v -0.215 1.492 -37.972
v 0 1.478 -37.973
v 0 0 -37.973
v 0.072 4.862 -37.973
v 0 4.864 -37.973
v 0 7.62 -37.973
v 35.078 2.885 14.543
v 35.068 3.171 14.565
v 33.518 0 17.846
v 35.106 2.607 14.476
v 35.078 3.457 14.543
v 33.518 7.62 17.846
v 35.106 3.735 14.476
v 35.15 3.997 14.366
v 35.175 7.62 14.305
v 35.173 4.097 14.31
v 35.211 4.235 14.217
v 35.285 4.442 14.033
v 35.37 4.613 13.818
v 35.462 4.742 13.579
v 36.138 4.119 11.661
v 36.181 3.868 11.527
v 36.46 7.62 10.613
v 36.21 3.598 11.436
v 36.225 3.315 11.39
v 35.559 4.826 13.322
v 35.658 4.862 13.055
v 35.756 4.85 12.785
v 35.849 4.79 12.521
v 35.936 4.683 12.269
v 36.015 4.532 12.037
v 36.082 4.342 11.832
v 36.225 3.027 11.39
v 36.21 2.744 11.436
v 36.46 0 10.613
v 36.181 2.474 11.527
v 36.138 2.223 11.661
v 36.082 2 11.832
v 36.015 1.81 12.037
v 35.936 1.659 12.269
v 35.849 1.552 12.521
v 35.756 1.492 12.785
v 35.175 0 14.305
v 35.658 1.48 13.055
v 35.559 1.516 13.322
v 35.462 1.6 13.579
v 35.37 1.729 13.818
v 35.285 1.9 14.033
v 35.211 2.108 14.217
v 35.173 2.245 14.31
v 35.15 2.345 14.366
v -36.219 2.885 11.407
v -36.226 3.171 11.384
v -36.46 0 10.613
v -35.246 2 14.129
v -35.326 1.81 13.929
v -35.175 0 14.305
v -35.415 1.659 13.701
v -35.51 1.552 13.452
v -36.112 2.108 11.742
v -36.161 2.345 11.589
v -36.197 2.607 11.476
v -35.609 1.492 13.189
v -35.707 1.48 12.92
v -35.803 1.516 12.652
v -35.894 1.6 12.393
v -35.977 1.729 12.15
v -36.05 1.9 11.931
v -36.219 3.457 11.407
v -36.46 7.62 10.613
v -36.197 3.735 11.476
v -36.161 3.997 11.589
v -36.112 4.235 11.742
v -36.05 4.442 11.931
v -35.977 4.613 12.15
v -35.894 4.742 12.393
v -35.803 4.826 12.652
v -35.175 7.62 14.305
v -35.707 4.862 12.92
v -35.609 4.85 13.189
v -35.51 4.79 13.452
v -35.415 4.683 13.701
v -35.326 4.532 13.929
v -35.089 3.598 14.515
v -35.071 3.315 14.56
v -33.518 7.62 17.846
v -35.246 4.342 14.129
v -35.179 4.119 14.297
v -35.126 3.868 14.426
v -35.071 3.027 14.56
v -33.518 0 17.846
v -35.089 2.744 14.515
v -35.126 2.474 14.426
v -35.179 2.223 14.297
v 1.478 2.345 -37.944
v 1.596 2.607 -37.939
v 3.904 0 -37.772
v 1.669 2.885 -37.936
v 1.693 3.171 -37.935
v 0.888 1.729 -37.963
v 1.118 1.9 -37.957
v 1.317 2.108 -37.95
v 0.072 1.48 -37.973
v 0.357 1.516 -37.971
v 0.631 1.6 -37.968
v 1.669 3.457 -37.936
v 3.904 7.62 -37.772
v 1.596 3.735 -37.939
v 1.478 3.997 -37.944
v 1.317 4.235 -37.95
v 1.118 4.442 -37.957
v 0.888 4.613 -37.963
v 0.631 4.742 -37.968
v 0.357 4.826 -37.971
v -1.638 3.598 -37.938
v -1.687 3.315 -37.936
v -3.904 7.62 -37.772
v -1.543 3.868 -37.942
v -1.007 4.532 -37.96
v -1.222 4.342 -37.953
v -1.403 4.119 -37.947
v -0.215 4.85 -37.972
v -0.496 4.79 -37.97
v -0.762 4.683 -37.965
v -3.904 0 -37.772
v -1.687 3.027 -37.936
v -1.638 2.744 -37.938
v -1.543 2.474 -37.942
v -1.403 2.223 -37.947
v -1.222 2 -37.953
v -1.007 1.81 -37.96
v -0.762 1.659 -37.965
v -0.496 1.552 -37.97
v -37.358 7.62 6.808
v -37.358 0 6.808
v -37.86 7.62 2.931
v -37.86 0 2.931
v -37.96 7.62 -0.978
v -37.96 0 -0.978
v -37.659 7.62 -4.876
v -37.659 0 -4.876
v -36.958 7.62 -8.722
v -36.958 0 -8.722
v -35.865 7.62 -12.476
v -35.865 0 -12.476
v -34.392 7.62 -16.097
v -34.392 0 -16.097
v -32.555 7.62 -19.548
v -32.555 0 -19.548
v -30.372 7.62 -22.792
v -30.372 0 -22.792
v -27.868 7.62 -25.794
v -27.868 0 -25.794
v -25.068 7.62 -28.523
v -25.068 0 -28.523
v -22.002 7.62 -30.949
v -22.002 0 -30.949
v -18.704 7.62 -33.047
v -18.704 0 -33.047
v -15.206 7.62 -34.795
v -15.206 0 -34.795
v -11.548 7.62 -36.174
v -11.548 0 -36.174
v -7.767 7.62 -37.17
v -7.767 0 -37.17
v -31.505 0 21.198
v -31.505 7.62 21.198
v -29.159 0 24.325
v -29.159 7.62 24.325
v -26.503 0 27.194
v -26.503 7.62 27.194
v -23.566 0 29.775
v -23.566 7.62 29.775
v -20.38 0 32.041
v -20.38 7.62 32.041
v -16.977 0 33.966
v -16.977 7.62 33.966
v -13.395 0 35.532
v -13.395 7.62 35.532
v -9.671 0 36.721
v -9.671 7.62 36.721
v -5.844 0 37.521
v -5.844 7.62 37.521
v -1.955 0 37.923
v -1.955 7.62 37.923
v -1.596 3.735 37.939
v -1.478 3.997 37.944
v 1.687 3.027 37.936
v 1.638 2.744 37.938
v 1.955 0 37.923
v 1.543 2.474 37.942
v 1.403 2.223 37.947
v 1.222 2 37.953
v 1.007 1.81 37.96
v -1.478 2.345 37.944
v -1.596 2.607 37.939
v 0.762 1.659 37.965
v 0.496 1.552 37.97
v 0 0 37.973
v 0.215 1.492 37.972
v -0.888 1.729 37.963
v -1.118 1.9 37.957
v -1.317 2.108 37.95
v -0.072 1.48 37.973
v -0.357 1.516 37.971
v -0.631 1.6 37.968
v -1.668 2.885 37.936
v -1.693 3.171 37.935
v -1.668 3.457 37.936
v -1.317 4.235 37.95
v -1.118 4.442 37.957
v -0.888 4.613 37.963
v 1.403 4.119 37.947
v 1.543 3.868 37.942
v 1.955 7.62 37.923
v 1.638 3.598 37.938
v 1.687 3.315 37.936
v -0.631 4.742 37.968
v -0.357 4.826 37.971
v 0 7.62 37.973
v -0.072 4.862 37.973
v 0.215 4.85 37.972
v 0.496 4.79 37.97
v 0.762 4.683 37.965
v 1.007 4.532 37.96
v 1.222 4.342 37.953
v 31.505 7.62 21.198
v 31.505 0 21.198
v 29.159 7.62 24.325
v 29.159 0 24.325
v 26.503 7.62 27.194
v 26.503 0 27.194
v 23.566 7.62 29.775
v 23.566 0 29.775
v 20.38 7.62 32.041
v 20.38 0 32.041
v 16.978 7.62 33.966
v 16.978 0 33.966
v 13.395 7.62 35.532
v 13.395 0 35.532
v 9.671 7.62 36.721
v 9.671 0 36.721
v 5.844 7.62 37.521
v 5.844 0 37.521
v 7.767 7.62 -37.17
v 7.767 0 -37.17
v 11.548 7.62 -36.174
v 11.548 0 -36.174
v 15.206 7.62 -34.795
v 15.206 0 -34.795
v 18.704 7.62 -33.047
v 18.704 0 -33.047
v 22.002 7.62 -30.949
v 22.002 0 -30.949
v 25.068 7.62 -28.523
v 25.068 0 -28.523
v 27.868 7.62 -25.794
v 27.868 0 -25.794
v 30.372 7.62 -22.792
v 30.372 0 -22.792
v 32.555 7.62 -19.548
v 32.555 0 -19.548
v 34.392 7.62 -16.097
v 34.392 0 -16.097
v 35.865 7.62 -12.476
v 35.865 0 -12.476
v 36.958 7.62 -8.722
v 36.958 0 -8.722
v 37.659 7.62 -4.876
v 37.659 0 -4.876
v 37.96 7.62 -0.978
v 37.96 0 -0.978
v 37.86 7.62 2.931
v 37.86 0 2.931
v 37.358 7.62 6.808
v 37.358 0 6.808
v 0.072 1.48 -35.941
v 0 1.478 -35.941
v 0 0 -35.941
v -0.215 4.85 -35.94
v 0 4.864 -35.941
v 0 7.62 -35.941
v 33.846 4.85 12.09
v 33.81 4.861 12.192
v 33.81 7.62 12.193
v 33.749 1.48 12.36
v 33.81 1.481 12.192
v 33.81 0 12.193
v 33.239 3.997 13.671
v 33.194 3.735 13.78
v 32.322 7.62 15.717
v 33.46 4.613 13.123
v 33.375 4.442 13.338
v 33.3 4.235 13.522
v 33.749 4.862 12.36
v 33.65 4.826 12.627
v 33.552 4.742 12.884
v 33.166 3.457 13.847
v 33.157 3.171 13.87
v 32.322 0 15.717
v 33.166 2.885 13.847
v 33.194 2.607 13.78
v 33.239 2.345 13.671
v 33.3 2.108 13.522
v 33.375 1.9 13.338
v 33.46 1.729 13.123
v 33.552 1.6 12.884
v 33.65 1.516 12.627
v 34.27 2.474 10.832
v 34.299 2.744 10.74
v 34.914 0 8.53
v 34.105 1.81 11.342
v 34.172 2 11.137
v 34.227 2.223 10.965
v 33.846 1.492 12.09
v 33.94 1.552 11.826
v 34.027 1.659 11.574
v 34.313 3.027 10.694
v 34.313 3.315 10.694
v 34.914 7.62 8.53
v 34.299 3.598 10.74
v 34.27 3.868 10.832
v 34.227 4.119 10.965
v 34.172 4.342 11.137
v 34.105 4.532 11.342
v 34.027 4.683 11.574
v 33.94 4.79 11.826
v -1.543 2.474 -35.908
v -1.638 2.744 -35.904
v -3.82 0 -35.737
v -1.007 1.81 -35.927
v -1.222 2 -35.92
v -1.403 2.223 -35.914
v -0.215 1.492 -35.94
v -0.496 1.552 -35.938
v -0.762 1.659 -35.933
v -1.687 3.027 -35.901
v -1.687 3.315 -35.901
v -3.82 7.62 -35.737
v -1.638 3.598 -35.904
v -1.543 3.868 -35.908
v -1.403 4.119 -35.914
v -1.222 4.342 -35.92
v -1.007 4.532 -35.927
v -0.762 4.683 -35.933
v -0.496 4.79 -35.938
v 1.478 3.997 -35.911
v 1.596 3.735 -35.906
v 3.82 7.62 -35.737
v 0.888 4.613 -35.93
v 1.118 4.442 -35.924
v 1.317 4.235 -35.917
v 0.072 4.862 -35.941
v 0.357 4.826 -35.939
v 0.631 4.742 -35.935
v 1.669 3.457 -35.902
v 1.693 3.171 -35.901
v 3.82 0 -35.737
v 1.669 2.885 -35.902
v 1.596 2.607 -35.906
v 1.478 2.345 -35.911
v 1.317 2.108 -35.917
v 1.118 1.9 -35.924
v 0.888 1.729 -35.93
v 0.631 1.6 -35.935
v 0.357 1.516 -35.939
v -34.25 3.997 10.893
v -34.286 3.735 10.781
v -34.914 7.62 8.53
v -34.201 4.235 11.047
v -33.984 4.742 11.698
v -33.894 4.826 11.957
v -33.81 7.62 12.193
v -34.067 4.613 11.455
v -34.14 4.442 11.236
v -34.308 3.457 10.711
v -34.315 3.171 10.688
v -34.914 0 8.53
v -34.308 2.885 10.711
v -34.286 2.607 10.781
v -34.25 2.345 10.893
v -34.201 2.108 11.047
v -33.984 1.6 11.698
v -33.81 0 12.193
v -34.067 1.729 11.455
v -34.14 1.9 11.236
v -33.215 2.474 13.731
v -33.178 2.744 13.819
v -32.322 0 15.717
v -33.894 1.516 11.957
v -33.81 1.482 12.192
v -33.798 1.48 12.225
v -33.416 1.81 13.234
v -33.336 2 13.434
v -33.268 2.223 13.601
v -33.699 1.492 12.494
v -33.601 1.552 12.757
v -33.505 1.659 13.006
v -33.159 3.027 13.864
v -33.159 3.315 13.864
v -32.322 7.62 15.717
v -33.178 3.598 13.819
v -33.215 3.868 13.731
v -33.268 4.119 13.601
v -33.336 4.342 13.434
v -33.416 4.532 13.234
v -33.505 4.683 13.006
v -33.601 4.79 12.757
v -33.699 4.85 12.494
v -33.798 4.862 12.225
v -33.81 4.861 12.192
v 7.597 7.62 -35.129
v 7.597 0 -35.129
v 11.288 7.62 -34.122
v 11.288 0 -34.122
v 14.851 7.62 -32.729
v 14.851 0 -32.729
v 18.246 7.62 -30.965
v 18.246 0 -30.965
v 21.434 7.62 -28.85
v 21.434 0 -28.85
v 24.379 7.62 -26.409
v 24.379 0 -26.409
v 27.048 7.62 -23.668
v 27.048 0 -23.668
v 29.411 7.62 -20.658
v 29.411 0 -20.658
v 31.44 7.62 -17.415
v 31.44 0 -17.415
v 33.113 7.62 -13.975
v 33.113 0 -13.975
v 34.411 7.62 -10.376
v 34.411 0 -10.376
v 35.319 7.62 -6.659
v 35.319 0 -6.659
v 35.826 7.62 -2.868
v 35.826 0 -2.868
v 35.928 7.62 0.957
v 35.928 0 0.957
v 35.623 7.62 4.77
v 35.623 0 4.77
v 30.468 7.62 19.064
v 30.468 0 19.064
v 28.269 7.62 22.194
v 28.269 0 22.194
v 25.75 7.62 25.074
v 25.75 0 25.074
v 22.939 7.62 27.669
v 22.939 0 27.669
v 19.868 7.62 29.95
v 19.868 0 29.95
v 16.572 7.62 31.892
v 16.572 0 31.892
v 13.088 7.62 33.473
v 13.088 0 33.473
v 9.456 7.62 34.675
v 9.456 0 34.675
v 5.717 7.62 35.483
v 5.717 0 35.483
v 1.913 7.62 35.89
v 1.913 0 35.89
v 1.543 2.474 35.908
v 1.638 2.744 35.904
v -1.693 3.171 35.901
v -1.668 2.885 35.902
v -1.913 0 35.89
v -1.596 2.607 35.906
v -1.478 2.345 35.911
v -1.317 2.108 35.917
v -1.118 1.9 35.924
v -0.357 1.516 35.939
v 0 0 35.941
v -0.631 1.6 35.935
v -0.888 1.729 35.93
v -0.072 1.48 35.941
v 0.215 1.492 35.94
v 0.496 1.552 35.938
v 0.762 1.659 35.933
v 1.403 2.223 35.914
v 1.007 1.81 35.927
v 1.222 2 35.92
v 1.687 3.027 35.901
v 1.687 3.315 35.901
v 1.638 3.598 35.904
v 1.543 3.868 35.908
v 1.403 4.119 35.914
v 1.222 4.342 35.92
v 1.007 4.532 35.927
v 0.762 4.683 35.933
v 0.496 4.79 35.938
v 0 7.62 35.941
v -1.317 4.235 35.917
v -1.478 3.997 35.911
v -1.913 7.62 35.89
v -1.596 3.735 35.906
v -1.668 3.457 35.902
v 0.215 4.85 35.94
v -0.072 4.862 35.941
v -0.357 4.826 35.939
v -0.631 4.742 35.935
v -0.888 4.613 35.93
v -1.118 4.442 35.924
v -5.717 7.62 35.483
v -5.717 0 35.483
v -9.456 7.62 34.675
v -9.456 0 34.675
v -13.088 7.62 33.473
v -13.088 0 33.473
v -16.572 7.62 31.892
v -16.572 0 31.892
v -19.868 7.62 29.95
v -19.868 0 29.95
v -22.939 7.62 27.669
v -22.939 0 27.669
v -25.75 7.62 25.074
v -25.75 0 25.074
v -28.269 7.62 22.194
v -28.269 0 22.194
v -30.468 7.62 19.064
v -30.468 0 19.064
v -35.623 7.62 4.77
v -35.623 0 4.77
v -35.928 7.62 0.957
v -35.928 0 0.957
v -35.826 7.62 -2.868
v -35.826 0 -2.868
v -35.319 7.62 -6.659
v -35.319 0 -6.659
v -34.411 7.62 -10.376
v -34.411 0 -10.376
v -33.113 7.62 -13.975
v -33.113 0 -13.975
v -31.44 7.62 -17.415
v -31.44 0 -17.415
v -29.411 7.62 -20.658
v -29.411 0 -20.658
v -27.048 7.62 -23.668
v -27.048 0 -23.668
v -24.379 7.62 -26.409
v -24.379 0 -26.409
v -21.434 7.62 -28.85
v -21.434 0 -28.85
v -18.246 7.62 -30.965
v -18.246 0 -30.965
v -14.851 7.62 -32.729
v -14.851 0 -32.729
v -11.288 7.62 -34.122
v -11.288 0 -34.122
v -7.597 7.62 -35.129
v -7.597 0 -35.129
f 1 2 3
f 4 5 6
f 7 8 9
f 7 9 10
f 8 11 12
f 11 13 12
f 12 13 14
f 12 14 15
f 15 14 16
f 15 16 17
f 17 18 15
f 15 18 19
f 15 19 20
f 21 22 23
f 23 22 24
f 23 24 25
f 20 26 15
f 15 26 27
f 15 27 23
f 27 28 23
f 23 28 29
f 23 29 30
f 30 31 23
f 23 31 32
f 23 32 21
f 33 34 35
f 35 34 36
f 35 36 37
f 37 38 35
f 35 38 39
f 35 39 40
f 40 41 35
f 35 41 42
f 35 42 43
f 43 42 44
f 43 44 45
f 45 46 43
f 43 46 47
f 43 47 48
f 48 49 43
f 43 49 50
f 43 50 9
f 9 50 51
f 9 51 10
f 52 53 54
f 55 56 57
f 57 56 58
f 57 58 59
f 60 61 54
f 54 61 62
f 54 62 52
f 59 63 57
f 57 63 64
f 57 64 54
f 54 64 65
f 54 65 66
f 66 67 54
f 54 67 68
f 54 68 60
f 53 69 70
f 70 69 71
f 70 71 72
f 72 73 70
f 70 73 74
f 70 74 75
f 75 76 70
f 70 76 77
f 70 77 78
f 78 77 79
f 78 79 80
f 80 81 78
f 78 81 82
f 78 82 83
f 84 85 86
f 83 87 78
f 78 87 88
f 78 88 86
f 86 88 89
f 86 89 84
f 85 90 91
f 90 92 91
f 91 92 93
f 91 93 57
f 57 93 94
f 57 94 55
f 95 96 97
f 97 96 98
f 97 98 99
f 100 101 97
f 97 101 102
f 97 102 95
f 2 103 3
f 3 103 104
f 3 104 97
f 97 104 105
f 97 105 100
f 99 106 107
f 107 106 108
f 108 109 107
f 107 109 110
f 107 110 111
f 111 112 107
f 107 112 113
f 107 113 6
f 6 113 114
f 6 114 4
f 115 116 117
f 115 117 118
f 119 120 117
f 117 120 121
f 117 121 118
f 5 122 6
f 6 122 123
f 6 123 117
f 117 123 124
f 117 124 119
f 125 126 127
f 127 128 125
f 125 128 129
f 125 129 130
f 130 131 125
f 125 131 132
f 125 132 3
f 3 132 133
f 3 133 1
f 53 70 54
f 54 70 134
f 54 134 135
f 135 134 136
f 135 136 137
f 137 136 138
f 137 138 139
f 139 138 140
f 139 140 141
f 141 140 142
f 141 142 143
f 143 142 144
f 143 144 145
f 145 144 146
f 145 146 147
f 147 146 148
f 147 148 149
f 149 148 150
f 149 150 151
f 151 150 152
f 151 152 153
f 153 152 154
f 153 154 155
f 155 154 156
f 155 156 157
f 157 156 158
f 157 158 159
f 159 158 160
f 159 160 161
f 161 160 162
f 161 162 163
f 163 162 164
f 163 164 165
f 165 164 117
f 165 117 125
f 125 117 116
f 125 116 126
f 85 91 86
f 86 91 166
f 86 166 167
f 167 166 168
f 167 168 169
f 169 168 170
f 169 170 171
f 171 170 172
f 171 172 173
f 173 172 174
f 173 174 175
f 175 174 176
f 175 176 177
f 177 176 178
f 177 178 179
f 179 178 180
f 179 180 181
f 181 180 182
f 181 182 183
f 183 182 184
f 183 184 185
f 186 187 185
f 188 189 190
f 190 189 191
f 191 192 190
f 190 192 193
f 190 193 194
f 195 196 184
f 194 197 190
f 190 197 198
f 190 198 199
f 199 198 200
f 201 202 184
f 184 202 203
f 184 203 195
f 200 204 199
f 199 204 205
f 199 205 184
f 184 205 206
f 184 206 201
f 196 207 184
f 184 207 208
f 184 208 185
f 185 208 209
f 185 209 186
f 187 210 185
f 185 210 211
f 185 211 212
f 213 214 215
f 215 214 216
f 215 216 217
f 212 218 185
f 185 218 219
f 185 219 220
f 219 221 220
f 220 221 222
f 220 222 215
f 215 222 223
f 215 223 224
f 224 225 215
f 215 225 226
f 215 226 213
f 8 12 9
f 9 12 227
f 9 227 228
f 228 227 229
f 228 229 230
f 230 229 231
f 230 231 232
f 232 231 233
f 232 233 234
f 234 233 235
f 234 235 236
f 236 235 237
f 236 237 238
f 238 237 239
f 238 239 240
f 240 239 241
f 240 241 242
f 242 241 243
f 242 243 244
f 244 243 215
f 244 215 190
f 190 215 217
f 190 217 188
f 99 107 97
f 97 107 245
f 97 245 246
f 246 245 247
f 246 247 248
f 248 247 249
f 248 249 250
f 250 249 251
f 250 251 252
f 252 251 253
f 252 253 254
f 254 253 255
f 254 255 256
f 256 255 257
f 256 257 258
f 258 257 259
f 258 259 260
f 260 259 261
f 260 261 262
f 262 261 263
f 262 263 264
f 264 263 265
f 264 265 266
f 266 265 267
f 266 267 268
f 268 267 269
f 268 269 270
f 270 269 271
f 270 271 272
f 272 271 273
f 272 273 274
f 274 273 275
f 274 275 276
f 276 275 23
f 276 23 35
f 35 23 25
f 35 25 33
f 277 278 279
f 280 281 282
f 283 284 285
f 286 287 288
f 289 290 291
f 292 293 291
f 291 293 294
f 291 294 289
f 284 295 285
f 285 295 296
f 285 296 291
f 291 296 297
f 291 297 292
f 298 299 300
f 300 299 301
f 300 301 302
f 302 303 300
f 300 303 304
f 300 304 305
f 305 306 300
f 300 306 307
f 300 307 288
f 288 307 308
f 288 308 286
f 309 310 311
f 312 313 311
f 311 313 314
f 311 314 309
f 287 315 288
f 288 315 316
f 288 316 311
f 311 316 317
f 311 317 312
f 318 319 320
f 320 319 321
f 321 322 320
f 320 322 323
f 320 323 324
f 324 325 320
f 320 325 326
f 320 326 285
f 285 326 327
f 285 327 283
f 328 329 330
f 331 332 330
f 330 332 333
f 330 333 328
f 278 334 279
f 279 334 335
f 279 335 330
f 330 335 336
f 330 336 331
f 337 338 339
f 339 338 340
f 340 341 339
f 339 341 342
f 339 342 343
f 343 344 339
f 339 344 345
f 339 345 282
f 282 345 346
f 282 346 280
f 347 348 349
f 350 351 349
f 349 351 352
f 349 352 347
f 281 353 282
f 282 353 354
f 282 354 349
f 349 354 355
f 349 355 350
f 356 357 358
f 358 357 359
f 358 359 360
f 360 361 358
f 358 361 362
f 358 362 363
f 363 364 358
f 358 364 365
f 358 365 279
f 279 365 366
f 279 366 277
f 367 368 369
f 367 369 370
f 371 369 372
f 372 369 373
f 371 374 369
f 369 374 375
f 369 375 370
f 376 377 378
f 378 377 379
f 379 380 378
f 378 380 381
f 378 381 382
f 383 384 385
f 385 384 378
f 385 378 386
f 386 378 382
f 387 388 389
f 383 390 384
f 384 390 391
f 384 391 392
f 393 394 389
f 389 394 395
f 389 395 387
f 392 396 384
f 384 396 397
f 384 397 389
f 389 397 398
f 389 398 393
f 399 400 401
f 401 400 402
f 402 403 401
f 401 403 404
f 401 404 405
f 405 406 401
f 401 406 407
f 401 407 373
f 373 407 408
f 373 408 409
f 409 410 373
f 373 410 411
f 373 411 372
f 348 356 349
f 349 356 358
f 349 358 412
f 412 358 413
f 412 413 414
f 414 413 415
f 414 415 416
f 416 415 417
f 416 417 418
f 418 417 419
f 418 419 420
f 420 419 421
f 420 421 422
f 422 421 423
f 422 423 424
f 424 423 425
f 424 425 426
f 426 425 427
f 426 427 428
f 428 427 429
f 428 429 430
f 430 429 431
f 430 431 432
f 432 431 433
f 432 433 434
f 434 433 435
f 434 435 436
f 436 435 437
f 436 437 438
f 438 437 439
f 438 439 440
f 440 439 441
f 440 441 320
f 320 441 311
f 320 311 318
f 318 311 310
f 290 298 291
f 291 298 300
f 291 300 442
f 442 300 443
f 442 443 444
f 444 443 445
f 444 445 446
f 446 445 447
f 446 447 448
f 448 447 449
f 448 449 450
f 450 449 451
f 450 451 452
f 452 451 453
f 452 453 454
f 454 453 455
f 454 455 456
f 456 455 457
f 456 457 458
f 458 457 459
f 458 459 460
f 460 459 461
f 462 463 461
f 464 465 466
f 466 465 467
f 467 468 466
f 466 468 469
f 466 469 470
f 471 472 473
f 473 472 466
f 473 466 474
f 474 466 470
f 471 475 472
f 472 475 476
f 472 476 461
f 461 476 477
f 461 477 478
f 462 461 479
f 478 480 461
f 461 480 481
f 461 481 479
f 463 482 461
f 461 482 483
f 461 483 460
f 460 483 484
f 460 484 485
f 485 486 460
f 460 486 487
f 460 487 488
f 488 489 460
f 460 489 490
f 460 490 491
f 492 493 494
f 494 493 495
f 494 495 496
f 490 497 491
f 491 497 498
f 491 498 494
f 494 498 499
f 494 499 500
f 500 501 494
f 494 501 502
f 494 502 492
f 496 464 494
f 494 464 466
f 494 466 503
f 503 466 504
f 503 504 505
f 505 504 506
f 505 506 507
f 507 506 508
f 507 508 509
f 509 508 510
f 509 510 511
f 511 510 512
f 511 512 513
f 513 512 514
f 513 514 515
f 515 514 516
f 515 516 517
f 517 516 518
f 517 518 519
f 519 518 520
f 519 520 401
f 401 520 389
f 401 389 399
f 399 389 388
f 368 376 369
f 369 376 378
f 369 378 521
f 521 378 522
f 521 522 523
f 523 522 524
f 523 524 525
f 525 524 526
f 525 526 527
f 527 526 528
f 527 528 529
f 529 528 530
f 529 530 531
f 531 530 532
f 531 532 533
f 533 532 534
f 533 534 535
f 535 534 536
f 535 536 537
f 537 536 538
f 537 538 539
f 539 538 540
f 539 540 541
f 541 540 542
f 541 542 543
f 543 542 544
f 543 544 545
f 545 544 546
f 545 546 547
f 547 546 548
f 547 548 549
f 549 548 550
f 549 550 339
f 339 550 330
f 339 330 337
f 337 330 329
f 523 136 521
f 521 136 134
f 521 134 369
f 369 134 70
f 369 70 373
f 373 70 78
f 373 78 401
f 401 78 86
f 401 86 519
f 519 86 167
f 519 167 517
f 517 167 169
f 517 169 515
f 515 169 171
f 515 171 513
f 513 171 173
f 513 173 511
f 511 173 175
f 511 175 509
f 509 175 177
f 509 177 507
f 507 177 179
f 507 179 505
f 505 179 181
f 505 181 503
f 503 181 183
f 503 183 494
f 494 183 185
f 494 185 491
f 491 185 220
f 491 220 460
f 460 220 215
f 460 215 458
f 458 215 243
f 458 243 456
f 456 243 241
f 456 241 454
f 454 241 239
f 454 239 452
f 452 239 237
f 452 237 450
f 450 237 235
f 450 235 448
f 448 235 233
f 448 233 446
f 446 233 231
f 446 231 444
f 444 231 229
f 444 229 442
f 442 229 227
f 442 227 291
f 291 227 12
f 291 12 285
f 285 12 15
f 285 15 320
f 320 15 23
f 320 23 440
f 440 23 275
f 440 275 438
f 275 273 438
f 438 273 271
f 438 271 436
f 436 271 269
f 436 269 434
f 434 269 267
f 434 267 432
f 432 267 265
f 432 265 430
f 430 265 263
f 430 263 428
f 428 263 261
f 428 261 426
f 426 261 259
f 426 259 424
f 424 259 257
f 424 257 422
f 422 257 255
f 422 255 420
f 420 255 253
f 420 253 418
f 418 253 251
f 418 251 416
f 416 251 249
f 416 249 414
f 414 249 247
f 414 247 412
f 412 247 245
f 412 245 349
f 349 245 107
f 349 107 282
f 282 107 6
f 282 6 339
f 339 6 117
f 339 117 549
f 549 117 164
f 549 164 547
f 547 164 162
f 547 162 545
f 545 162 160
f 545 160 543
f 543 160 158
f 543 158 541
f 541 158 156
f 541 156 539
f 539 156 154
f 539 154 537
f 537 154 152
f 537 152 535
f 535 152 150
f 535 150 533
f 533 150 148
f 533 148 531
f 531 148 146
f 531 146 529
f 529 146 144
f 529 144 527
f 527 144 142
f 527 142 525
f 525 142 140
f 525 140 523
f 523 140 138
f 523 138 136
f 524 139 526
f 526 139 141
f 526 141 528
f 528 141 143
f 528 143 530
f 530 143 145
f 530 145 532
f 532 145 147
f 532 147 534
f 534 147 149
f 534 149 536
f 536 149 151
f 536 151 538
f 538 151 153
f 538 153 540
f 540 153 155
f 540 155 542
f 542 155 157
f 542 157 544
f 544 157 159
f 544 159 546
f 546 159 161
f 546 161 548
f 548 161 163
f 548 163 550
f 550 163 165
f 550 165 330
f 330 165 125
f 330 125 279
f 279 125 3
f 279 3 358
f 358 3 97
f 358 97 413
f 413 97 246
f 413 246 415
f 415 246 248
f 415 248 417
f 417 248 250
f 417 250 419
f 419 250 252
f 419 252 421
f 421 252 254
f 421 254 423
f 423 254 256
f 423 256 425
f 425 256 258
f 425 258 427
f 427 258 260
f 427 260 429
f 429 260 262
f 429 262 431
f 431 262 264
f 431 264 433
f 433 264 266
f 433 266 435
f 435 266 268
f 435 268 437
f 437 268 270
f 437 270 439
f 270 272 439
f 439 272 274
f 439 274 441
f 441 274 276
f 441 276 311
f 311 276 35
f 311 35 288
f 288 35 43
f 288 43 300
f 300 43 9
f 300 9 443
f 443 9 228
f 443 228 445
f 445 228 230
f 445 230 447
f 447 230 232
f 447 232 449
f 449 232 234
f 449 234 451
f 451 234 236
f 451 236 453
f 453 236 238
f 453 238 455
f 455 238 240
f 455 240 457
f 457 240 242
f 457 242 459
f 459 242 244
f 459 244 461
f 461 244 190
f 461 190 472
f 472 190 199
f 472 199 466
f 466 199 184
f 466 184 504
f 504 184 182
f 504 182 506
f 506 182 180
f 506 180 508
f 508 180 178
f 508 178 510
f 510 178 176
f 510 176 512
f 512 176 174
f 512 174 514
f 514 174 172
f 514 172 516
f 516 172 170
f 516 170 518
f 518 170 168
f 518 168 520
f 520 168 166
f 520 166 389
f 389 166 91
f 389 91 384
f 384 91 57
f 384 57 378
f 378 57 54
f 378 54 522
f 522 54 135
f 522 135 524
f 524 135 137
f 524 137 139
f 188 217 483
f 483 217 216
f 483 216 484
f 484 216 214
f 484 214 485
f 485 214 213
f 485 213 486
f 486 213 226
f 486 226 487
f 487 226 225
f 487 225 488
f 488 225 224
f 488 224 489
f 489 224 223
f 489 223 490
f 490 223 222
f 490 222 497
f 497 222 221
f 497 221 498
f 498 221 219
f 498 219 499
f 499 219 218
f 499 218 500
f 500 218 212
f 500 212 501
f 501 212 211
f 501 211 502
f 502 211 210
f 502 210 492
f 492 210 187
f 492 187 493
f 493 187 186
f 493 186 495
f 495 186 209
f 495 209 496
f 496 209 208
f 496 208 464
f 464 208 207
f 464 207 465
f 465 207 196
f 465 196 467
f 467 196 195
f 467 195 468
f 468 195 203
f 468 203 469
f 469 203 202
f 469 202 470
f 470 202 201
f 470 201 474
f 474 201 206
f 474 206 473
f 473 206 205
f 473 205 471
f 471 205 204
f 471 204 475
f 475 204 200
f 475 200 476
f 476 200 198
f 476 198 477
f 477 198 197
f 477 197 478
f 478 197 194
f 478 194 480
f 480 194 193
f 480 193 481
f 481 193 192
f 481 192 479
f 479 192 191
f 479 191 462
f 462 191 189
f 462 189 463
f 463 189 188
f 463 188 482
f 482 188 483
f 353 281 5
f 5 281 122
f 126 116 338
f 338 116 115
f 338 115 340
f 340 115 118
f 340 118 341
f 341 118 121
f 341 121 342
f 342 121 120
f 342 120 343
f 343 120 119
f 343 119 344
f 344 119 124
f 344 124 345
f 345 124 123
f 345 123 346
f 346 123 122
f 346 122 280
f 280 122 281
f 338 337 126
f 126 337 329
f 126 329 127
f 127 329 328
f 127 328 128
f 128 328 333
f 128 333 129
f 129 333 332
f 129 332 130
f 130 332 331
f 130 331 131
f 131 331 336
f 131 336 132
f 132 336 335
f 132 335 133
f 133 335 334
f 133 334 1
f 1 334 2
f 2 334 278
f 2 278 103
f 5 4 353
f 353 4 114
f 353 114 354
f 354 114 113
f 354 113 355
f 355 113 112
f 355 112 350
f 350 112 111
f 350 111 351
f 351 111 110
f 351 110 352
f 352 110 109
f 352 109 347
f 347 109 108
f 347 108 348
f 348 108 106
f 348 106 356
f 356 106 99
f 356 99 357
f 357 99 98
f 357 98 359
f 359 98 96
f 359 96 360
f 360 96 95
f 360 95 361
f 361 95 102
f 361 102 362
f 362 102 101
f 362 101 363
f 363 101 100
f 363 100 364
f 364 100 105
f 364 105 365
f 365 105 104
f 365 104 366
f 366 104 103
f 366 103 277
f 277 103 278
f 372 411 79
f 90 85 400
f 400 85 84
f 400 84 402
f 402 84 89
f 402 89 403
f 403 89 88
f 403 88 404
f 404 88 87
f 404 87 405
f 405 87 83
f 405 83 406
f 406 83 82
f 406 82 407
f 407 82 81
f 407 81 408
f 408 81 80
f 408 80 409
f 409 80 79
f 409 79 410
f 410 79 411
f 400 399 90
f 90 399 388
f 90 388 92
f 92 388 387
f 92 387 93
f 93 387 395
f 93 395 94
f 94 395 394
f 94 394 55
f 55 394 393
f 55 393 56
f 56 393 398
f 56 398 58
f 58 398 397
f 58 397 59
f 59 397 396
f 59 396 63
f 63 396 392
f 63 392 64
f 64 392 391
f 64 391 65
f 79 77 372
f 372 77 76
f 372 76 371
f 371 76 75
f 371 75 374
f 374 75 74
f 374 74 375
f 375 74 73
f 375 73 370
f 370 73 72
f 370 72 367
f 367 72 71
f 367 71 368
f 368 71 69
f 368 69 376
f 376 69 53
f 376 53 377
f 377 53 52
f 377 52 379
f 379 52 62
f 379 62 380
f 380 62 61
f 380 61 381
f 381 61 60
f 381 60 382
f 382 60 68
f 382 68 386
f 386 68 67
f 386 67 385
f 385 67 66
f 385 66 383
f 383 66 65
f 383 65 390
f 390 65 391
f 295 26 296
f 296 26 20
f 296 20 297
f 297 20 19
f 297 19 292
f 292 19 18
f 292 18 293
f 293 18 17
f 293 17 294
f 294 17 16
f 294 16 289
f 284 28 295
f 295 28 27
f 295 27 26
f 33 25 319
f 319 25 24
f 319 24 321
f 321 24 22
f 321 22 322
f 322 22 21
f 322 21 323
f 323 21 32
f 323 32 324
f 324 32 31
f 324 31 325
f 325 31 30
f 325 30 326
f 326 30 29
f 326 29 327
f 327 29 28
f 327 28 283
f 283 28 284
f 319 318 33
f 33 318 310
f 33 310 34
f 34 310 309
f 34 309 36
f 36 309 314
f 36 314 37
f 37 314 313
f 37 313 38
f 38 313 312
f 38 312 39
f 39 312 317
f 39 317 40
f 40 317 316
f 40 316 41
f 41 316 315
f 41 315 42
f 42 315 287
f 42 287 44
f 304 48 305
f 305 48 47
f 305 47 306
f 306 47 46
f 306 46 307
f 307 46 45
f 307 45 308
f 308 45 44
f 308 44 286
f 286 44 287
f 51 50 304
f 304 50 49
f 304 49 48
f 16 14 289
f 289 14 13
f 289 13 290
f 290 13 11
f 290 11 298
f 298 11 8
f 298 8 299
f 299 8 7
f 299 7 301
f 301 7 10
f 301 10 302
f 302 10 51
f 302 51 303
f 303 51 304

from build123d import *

# Parameters (mm, degrees)
SKETCH1_R                       = 37.973
SKETCH1_R_2                     = 35.941
BOSS_EXTRUDE1_DEPTH             = 7.62
SKETCH2_R                       = 1.692869147
CUT_EXTRUDE1_DEPTH              = 86.62
CIRPATTERN1_COUNT               = 2
CIRPATTERN2_COUNT               = 2
CIRPATTERN2_ANGLE               = 70
CIRPATTERN2_THE_OTHER_WAY_COUNT = 2
CIRPATTERN2_THE_OTHER_WAY_ANGLE = 70


with BuildPart() as part:
    # Sketch1 → Boss-Extrude1 (new body)
    with BuildSketch(Plane(origin=(0, 0, 0), x_dir=(1, 0, 0), z_dir=(0, 1, 0))):
        with Locations(Location((0, 0, 0), (0, 0, 90))):
            Circle(SKETCH1_R)
        with Locations(Location((0, 0, 0), (0, 0, 90))):
            Circle(SKETCH1_R_2, mode=Mode.SUBTRACT)
    extrude(amount=BOSS_EXTRUDE1_DEPTH)

    # Sketch2 → Cut-Extrude1 (cut)
    with BuildSketch(Plane.XY):
        with Locations(Location((0, 3.171011831, 0), (0, 0, 180))):
            Circle(SKETCH2_R)
    cut_extrude1 = extrude(amount=CUT_EXTRUDE1_DEPTH, mode=Mode.SUBTRACT)

    # CirPattern1: Cut-Extrude1 ×2 about axis
    cirpattern1_axis = Axis((0, 7.62, 0), (0, -1, 0))
    for i in range(1, CIRPATTERN1_COUNT):
        add(cut_extrude1.rotate(cirpattern1_axis, i * 360 / CIRPATTERN1_COUNT), mode=Mode.SUBTRACT)

    # CirPattern2: Cut-Extrude1 ×2 about axis
    cirpattern2_axis = Axis((0, 7.62, 0), (0, 1, 0))
    for i in range(1, CIRPATTERN2_COUNT):
        add(cut_extrude1.rotate(cirpattern2_axis, i * CIRPATTERN2_ANGLE / (CIRPATTERN2_COUNT - 1)), mode=Mode.SUBTRACT)

    # CirPattern2 the other way: Cut-Extrude1 ×2 about axis
    cirpattern2_the_other_way_axis = Axis((0, 7.62, 0), (0, -1, 0))
    for i in range(1, CIRPATTERN2_THE_OTHER_WAY_COUNT):
        add(cut_extrude1.rotate(cirpattern2_the_other_way_axis, i * CIRPATTERN2_THE_OTHER_WAY_ANGLE / (CIRPATTERN2_THE_OTHER_WAY_COUNT - 1)), mode=Mode.SUBTRACT)


solid = part.part
